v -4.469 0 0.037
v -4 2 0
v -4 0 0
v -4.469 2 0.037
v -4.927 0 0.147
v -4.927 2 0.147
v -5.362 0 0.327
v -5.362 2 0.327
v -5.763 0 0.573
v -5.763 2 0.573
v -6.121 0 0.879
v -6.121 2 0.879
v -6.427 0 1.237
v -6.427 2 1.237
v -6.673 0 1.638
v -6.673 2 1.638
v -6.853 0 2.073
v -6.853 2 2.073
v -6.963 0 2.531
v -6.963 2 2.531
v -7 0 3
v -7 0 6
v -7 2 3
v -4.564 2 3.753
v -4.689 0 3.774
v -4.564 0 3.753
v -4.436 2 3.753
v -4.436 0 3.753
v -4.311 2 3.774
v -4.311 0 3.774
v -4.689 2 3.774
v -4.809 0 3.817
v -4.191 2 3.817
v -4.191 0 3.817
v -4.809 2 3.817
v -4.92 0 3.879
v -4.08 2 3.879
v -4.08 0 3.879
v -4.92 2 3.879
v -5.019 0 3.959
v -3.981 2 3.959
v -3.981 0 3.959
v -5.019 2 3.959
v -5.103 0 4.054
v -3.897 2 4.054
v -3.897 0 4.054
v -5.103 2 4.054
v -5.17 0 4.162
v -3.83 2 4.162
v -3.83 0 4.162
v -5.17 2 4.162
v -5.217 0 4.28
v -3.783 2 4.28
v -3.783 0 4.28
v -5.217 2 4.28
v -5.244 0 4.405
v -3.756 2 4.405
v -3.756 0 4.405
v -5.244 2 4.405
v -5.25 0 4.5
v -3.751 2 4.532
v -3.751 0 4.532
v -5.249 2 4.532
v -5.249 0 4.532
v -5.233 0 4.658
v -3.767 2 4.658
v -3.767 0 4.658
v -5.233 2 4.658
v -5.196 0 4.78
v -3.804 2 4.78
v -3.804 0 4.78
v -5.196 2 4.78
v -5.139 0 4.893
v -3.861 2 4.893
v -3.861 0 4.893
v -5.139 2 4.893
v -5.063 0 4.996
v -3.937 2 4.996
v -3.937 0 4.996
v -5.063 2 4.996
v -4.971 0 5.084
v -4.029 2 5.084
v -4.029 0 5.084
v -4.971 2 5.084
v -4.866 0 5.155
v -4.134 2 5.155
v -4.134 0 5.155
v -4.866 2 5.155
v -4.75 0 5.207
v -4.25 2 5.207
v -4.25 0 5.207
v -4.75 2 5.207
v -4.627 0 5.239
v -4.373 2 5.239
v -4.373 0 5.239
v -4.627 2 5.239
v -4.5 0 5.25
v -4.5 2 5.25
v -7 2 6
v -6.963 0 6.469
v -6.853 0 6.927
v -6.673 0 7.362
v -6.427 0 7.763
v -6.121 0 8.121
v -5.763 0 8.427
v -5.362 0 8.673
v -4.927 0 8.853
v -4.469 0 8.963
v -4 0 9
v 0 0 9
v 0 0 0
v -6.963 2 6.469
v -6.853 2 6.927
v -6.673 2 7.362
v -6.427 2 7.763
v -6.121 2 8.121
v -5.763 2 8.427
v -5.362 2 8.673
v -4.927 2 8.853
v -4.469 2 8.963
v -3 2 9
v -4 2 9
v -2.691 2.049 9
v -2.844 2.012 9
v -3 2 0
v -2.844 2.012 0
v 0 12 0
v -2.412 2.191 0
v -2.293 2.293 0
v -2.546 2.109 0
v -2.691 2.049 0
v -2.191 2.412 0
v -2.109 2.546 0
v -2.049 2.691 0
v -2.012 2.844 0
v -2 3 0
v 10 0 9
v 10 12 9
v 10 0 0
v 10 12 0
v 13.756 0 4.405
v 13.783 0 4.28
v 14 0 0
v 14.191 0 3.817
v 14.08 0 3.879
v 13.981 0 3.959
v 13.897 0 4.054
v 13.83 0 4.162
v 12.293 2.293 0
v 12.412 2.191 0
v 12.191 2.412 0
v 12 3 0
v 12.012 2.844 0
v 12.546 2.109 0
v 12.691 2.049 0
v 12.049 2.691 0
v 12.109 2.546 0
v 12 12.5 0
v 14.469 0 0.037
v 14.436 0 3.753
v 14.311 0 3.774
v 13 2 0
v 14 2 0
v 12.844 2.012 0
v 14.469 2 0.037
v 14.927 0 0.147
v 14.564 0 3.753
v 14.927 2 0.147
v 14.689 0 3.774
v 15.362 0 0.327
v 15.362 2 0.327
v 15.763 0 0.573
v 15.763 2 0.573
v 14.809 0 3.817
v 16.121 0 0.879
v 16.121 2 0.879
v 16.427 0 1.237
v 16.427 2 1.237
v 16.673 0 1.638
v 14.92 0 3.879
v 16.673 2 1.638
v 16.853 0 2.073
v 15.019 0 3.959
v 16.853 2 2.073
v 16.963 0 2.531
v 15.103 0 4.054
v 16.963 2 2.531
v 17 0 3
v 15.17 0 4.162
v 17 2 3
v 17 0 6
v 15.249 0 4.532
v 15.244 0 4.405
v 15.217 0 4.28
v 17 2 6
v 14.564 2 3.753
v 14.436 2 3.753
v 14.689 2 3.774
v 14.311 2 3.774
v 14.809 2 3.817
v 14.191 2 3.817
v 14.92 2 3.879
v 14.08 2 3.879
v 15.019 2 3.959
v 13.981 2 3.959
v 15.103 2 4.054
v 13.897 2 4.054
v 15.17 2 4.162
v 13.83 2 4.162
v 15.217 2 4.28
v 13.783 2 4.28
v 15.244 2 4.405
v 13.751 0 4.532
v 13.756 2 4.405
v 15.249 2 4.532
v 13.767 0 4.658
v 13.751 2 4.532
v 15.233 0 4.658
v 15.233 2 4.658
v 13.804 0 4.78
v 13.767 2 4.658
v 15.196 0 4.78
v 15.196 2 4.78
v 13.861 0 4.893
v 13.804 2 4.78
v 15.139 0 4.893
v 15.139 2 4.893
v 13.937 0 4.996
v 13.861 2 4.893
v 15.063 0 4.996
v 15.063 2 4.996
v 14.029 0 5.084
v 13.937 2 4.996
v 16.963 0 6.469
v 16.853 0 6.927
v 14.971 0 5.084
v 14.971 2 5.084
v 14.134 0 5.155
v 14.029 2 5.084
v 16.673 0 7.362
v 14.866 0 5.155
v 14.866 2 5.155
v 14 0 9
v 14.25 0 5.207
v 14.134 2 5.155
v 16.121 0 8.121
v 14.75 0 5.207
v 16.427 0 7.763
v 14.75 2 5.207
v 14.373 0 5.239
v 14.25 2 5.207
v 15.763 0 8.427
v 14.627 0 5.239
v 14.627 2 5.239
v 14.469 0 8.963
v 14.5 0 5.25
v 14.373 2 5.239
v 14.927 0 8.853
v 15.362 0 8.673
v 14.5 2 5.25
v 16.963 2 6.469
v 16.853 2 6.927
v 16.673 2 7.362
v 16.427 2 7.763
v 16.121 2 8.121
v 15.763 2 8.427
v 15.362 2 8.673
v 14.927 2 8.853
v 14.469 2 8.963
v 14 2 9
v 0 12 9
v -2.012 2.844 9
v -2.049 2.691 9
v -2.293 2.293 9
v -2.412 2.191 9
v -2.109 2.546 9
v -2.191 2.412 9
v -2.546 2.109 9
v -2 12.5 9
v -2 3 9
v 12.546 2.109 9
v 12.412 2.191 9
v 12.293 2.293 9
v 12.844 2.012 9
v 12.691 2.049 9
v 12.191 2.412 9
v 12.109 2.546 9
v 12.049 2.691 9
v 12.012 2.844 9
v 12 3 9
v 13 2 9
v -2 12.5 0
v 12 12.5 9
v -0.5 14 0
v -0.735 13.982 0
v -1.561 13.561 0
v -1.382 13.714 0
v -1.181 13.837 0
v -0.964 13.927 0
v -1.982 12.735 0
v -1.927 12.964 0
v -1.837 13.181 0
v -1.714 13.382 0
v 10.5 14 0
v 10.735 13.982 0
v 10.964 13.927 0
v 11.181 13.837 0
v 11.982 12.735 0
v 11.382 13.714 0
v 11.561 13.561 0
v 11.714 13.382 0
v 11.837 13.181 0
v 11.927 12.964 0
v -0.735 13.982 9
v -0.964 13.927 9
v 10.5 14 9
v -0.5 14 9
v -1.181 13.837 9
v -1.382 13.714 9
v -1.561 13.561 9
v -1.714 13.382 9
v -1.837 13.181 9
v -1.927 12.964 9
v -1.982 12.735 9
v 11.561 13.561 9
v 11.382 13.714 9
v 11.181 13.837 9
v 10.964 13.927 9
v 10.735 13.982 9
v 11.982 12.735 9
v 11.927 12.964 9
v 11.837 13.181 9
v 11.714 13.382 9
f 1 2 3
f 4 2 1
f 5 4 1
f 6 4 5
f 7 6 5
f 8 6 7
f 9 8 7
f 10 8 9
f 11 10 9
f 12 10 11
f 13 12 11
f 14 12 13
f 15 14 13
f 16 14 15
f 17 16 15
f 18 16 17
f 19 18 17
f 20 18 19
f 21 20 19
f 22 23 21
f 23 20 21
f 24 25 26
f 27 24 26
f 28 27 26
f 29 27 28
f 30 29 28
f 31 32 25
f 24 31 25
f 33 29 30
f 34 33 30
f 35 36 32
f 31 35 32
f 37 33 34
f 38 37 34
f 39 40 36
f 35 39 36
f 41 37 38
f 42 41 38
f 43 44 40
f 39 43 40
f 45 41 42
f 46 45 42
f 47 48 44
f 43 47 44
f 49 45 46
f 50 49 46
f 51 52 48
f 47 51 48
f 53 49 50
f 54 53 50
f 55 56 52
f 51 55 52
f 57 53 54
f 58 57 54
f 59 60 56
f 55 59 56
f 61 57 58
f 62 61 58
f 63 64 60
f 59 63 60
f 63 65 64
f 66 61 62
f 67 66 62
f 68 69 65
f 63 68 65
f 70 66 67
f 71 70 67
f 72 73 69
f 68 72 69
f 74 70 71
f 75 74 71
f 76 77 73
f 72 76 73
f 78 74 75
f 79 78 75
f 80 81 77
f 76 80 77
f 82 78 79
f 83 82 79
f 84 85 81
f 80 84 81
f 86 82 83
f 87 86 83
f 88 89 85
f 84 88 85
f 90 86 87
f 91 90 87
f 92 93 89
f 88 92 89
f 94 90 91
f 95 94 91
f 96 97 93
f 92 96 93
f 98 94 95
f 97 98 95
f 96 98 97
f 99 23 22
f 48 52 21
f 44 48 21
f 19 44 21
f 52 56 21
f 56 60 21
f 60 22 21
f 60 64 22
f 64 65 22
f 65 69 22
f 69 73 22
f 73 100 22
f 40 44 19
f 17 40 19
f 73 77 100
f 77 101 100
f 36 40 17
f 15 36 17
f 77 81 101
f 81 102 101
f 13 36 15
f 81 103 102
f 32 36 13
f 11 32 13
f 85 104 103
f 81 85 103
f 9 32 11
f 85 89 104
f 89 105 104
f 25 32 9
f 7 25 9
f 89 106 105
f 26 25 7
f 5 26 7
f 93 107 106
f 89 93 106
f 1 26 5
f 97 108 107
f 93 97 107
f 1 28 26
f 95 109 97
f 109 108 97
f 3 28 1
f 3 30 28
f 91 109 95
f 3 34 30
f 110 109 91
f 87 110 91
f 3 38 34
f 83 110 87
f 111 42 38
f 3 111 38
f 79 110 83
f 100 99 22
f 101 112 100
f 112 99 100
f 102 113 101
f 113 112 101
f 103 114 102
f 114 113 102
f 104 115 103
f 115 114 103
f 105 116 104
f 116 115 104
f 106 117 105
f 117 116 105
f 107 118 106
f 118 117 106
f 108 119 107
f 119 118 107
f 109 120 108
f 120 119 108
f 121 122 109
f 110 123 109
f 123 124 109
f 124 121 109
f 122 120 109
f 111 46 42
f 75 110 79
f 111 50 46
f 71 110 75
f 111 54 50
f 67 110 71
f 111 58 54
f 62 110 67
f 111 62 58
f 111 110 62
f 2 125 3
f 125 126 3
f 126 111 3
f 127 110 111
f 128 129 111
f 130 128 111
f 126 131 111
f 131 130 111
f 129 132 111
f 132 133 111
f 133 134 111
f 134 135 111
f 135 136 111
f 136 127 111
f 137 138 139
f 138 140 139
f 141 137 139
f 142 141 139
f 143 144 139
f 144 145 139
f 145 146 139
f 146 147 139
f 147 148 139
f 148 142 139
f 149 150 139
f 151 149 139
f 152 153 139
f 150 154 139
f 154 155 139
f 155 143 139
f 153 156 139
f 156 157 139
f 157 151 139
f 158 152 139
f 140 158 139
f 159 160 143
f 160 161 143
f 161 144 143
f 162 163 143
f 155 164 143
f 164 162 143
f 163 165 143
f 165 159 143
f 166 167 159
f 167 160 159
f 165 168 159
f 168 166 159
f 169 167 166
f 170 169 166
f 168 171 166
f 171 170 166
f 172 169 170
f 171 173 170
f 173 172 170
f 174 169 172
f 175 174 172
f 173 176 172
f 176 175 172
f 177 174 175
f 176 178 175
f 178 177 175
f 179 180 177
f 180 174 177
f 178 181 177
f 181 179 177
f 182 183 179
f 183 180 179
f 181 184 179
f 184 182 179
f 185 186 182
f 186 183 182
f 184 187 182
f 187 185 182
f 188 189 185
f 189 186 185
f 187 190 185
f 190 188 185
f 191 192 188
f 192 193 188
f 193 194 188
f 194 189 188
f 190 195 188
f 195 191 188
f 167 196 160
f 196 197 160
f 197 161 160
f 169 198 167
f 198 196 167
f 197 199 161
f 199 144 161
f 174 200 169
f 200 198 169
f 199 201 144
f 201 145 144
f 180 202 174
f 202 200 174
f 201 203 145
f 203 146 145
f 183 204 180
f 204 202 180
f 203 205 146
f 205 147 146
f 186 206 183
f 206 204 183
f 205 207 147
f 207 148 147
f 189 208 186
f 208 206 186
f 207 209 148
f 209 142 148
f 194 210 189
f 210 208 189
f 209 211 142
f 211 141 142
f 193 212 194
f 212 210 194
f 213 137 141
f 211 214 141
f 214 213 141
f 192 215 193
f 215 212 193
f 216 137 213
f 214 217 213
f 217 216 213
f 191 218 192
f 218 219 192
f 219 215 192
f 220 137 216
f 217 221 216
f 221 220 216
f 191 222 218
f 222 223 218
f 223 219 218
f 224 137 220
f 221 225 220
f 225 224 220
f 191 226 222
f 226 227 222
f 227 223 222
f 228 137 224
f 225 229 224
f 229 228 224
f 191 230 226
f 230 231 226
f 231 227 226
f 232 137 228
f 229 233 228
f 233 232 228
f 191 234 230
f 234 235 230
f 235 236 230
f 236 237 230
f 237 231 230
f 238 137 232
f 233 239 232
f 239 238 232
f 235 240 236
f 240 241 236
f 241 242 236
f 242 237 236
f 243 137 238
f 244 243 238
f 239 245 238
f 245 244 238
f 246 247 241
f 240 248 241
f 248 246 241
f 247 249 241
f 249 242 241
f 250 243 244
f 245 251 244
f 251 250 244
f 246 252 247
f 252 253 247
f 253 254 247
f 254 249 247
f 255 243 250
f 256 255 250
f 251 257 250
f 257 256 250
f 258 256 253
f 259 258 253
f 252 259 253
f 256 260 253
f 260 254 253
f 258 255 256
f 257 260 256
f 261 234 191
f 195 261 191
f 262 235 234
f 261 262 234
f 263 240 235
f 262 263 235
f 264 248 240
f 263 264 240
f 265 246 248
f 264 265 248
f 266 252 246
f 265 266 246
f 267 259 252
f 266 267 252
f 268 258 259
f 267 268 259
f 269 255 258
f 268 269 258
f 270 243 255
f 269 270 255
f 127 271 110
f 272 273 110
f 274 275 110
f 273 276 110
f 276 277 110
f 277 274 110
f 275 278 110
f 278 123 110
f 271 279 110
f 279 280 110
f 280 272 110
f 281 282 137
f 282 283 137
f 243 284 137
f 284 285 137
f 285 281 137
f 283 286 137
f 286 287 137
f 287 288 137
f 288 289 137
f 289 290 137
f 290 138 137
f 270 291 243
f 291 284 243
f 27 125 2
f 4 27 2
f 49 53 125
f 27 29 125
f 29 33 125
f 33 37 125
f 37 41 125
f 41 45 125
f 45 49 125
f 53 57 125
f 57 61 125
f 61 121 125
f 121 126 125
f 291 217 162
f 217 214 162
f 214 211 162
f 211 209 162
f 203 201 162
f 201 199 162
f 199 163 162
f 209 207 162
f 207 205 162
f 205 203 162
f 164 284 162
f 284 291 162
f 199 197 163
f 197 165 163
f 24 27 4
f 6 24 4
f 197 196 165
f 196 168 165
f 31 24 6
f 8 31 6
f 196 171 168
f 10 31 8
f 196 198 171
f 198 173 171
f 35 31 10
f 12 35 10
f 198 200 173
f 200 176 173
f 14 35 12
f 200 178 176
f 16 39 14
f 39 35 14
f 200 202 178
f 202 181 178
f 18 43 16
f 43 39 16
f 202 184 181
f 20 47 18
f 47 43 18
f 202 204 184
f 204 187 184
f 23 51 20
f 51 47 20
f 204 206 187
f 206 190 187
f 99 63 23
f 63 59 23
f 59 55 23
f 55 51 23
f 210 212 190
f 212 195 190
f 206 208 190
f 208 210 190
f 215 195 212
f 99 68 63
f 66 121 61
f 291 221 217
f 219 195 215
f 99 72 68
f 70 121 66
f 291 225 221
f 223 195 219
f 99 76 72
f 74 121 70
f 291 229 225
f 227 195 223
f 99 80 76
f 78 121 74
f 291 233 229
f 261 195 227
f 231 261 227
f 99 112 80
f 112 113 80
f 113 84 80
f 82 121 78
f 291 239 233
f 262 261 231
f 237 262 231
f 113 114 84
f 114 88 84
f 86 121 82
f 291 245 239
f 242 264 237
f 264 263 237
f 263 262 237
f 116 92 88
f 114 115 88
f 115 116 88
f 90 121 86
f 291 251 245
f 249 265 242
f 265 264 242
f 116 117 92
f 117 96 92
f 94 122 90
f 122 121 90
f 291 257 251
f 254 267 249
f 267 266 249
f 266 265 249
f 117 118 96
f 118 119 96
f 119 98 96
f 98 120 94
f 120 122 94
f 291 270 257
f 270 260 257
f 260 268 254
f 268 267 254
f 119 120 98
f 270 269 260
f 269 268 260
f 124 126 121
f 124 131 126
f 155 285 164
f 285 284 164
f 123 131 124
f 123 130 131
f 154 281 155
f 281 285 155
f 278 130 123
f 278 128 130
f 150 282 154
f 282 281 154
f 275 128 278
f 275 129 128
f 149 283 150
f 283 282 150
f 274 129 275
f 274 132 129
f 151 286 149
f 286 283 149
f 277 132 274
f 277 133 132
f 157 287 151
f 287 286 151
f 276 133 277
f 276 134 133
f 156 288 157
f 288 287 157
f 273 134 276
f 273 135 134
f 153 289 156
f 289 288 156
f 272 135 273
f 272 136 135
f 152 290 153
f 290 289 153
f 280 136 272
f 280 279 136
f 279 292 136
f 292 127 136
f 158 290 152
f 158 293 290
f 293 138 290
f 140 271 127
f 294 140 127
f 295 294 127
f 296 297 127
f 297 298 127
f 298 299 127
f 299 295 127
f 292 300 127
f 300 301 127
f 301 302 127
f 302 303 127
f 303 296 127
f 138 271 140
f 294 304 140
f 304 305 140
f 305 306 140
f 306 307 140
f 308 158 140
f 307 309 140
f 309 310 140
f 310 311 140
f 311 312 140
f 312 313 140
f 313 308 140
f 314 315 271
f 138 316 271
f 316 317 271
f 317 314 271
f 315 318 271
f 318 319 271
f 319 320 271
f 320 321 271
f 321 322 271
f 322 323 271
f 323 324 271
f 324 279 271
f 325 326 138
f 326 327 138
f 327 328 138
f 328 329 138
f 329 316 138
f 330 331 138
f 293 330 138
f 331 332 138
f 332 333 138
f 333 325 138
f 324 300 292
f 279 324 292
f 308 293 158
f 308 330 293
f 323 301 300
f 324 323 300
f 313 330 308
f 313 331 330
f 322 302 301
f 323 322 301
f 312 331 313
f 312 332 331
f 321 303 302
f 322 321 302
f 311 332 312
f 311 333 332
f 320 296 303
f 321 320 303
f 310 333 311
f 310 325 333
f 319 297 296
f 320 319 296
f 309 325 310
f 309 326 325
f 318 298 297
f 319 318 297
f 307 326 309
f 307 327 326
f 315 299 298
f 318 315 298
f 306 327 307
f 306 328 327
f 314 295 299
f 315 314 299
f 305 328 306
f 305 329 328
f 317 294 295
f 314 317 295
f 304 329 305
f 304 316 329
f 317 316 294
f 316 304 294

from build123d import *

# Parameters (mm, degrees)
SALIENTE_EXTRUIR1_DEPTH = 9
REDONDEO1_R             = 3
REDONDEO2_R             = 1.5
CROQUIS3_R              = 0.75
CORTAR_EXTRUIR1_DEPTH   = 9
REDONDEO3_R             = 1


with BuildPart() as part:
    # Croquis2 → Saliente-Extruir1 (new body)
    with BuildSketch(Plane.XY):
        Polygon((10, 0), (17, 0), (17, 2), (12, 2), (12, 14), (-2, 14), (-2, 2), (-7, 2), (-7, 0), (0, 0), (0, 12), (10, 12), align=None)
    extrude(amount=SALIENTE_EXTRUIR1_DEPTH)

    # Redondeo1
    redondeo1_edges = [part.edges().sort_by_distance(p)[0] for p in [
        (-7, 1, 0),
        (17, 1, 0),
        (17, 1, 9),
        (-7, 1, 9),
    ]]
    fillet(redondeo1_edges, radius=REDONDEO1_R)

    # Redondeo2
    redondeo2_edges = [part.edges().sort_by_distance(p)[0] for p in [
        (-2, 14, 4.5),
        (12, 14, 4.5),
    ]]
    fillet(redondeo2_edges, radius=REDONDEO2_R)

    # Croquis3 → Cortar-Extruir1 (cut)
    with BuildSketch(Plane(origin=(0, 2, 0), x_dir=(1, 0, 0), z_dir=(0, 1, 0))):
        with Locations(Location((-4.5, -4.5, 0), (0, 0, 270))):
            Circle(CROQUIS3_R)
        with Locations(Location((14.5, -4.5, 0), (0, 0, 270))):
            Circle(CROQUIS3_R)
    extrude(amount=-CORTAR_EXTRUIR1_DEPTH, mode=Mode.SUBTRACT)

    # Redondeo3
    redondeo3_edges = [part.edges().sort_by_distance(p)[0] for p in [
        (-2, 2, 4.5),
        (12, 2, 4.5),
    ]]
    fillet(redondeo3_edges, radius=REDONDEO3_R)


solid = part.part
